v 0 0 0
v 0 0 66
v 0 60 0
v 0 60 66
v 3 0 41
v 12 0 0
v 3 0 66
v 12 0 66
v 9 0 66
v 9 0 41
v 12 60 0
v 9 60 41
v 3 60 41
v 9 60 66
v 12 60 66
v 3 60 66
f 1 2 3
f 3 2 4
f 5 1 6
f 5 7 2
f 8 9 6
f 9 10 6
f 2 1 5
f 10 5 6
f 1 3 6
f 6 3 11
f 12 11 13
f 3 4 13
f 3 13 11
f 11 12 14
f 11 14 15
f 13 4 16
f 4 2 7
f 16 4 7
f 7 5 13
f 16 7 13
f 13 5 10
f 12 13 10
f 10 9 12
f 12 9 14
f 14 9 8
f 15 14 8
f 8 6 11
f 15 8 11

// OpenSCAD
cube([12,60,41]);
cube([3,60,66]);
translate([9,0,0]) cube([3,60,66]);
